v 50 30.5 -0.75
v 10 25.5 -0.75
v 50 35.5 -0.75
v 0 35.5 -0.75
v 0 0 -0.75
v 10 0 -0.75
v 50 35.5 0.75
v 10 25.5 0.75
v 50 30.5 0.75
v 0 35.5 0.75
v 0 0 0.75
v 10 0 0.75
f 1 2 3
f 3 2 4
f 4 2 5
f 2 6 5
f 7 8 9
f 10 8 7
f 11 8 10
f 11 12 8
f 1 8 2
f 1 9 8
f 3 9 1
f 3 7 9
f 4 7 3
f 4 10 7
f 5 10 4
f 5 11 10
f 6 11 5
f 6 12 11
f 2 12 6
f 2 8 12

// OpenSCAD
// file: variables.scad
$fn = 50;
//chambres

//globol

decal = 5; //decalage global chambres
lg = 310; //longueur totale
lag = 60; //largeur totae
ep = 1.5; //epaisseur plak
etv = 19; // ecart vert touches
eth = 14; //ecrat hor touches
nb = 15; //nombre de touches

//plaque dessus

hpd = 40; //hauteur plaque dessus
dth = 8; //diametre des trous pl haut
dtb = 6; //diametre des trous pl bas

//include <plaque_dessus.scad>

//tubes 

dtige=4; //diametre tige bouton
dtub = 6; //dimatre tube 
drtub = 8; //diametre tube ressort
hrtub = 10; //hauteur ressort tube
hbtub = 14; //hauteur du bas du tube

//include <tubes.scad>

//chambre

htc=10;//hauteur chambres
epa = 2; //epaisseur ailettes
epc=3; //grosse epaisseur chmbre

long0=etv-drtub;
long00=etv-drtub-ep*2;
long000=etv+etv/2;
long1=lag/2-drtub/2-epc-epc/2;
long2=lag/2+epc/2+drtub/2;

longb = 10; //largueur basse ailette
longh = 5; //largeur haute ailette

lab = lag-longb*2;


//plaque dessus ici a cause des variables des chambres


//tigettes

epe = 6; //epaisseur escalier
escalier = 3; //ecart de hauteur des touches
htig = hpd+epe;
etouch = 3; //epaisseur touche    
diat = 15; // diametre de la touche
//coté droit



echo();
echo();
echo();
echo();
echo("***********************");
echo("long000 aka inter cloisons = ", long000);
echo("long0 fond des cloisons = ", long0);
echo("long1 base ailette centrale = ", long1);
echo("long2 base ailette grande = ", long2);




echo("*********************** ");
echo();
echo();


hypo = sqrt((longb-longh)^2 + hpd^2);
echo("hypo" ,hypo);
cosin = hpd/hypo;
echo("cos alpha",cosin);
angle = acos(cosin);
echo("angle",angle);



//reservoir d'air


htr = 8;



//plaques ltérales

hhtt=37; //hauteur première plaque

//include <plaques_laterales.scad>

//plaques internes

//plaque intermediaire ou bout de bois


hauteur = hpd-hrtub;
echo("hauteur" , hauteur);
hypopo = 1 / (cos(angle) / hauteur);
hypopopo = 1 / (cos(angle) / hpd);
echo("hypopo", hypopo);
coop = sin(angle) * hypopo;
echo("coop", coop);

//plaques laterale interne
// main file
include <variables.scad>

linear_extrude(ep, center=true, convexity=10,twist=0)
polygon([[0,0],[0,long2],[hpd+htc,long2],[hpd+htc,long2-longh],[htc,long2-longb],[htc,0]]);
